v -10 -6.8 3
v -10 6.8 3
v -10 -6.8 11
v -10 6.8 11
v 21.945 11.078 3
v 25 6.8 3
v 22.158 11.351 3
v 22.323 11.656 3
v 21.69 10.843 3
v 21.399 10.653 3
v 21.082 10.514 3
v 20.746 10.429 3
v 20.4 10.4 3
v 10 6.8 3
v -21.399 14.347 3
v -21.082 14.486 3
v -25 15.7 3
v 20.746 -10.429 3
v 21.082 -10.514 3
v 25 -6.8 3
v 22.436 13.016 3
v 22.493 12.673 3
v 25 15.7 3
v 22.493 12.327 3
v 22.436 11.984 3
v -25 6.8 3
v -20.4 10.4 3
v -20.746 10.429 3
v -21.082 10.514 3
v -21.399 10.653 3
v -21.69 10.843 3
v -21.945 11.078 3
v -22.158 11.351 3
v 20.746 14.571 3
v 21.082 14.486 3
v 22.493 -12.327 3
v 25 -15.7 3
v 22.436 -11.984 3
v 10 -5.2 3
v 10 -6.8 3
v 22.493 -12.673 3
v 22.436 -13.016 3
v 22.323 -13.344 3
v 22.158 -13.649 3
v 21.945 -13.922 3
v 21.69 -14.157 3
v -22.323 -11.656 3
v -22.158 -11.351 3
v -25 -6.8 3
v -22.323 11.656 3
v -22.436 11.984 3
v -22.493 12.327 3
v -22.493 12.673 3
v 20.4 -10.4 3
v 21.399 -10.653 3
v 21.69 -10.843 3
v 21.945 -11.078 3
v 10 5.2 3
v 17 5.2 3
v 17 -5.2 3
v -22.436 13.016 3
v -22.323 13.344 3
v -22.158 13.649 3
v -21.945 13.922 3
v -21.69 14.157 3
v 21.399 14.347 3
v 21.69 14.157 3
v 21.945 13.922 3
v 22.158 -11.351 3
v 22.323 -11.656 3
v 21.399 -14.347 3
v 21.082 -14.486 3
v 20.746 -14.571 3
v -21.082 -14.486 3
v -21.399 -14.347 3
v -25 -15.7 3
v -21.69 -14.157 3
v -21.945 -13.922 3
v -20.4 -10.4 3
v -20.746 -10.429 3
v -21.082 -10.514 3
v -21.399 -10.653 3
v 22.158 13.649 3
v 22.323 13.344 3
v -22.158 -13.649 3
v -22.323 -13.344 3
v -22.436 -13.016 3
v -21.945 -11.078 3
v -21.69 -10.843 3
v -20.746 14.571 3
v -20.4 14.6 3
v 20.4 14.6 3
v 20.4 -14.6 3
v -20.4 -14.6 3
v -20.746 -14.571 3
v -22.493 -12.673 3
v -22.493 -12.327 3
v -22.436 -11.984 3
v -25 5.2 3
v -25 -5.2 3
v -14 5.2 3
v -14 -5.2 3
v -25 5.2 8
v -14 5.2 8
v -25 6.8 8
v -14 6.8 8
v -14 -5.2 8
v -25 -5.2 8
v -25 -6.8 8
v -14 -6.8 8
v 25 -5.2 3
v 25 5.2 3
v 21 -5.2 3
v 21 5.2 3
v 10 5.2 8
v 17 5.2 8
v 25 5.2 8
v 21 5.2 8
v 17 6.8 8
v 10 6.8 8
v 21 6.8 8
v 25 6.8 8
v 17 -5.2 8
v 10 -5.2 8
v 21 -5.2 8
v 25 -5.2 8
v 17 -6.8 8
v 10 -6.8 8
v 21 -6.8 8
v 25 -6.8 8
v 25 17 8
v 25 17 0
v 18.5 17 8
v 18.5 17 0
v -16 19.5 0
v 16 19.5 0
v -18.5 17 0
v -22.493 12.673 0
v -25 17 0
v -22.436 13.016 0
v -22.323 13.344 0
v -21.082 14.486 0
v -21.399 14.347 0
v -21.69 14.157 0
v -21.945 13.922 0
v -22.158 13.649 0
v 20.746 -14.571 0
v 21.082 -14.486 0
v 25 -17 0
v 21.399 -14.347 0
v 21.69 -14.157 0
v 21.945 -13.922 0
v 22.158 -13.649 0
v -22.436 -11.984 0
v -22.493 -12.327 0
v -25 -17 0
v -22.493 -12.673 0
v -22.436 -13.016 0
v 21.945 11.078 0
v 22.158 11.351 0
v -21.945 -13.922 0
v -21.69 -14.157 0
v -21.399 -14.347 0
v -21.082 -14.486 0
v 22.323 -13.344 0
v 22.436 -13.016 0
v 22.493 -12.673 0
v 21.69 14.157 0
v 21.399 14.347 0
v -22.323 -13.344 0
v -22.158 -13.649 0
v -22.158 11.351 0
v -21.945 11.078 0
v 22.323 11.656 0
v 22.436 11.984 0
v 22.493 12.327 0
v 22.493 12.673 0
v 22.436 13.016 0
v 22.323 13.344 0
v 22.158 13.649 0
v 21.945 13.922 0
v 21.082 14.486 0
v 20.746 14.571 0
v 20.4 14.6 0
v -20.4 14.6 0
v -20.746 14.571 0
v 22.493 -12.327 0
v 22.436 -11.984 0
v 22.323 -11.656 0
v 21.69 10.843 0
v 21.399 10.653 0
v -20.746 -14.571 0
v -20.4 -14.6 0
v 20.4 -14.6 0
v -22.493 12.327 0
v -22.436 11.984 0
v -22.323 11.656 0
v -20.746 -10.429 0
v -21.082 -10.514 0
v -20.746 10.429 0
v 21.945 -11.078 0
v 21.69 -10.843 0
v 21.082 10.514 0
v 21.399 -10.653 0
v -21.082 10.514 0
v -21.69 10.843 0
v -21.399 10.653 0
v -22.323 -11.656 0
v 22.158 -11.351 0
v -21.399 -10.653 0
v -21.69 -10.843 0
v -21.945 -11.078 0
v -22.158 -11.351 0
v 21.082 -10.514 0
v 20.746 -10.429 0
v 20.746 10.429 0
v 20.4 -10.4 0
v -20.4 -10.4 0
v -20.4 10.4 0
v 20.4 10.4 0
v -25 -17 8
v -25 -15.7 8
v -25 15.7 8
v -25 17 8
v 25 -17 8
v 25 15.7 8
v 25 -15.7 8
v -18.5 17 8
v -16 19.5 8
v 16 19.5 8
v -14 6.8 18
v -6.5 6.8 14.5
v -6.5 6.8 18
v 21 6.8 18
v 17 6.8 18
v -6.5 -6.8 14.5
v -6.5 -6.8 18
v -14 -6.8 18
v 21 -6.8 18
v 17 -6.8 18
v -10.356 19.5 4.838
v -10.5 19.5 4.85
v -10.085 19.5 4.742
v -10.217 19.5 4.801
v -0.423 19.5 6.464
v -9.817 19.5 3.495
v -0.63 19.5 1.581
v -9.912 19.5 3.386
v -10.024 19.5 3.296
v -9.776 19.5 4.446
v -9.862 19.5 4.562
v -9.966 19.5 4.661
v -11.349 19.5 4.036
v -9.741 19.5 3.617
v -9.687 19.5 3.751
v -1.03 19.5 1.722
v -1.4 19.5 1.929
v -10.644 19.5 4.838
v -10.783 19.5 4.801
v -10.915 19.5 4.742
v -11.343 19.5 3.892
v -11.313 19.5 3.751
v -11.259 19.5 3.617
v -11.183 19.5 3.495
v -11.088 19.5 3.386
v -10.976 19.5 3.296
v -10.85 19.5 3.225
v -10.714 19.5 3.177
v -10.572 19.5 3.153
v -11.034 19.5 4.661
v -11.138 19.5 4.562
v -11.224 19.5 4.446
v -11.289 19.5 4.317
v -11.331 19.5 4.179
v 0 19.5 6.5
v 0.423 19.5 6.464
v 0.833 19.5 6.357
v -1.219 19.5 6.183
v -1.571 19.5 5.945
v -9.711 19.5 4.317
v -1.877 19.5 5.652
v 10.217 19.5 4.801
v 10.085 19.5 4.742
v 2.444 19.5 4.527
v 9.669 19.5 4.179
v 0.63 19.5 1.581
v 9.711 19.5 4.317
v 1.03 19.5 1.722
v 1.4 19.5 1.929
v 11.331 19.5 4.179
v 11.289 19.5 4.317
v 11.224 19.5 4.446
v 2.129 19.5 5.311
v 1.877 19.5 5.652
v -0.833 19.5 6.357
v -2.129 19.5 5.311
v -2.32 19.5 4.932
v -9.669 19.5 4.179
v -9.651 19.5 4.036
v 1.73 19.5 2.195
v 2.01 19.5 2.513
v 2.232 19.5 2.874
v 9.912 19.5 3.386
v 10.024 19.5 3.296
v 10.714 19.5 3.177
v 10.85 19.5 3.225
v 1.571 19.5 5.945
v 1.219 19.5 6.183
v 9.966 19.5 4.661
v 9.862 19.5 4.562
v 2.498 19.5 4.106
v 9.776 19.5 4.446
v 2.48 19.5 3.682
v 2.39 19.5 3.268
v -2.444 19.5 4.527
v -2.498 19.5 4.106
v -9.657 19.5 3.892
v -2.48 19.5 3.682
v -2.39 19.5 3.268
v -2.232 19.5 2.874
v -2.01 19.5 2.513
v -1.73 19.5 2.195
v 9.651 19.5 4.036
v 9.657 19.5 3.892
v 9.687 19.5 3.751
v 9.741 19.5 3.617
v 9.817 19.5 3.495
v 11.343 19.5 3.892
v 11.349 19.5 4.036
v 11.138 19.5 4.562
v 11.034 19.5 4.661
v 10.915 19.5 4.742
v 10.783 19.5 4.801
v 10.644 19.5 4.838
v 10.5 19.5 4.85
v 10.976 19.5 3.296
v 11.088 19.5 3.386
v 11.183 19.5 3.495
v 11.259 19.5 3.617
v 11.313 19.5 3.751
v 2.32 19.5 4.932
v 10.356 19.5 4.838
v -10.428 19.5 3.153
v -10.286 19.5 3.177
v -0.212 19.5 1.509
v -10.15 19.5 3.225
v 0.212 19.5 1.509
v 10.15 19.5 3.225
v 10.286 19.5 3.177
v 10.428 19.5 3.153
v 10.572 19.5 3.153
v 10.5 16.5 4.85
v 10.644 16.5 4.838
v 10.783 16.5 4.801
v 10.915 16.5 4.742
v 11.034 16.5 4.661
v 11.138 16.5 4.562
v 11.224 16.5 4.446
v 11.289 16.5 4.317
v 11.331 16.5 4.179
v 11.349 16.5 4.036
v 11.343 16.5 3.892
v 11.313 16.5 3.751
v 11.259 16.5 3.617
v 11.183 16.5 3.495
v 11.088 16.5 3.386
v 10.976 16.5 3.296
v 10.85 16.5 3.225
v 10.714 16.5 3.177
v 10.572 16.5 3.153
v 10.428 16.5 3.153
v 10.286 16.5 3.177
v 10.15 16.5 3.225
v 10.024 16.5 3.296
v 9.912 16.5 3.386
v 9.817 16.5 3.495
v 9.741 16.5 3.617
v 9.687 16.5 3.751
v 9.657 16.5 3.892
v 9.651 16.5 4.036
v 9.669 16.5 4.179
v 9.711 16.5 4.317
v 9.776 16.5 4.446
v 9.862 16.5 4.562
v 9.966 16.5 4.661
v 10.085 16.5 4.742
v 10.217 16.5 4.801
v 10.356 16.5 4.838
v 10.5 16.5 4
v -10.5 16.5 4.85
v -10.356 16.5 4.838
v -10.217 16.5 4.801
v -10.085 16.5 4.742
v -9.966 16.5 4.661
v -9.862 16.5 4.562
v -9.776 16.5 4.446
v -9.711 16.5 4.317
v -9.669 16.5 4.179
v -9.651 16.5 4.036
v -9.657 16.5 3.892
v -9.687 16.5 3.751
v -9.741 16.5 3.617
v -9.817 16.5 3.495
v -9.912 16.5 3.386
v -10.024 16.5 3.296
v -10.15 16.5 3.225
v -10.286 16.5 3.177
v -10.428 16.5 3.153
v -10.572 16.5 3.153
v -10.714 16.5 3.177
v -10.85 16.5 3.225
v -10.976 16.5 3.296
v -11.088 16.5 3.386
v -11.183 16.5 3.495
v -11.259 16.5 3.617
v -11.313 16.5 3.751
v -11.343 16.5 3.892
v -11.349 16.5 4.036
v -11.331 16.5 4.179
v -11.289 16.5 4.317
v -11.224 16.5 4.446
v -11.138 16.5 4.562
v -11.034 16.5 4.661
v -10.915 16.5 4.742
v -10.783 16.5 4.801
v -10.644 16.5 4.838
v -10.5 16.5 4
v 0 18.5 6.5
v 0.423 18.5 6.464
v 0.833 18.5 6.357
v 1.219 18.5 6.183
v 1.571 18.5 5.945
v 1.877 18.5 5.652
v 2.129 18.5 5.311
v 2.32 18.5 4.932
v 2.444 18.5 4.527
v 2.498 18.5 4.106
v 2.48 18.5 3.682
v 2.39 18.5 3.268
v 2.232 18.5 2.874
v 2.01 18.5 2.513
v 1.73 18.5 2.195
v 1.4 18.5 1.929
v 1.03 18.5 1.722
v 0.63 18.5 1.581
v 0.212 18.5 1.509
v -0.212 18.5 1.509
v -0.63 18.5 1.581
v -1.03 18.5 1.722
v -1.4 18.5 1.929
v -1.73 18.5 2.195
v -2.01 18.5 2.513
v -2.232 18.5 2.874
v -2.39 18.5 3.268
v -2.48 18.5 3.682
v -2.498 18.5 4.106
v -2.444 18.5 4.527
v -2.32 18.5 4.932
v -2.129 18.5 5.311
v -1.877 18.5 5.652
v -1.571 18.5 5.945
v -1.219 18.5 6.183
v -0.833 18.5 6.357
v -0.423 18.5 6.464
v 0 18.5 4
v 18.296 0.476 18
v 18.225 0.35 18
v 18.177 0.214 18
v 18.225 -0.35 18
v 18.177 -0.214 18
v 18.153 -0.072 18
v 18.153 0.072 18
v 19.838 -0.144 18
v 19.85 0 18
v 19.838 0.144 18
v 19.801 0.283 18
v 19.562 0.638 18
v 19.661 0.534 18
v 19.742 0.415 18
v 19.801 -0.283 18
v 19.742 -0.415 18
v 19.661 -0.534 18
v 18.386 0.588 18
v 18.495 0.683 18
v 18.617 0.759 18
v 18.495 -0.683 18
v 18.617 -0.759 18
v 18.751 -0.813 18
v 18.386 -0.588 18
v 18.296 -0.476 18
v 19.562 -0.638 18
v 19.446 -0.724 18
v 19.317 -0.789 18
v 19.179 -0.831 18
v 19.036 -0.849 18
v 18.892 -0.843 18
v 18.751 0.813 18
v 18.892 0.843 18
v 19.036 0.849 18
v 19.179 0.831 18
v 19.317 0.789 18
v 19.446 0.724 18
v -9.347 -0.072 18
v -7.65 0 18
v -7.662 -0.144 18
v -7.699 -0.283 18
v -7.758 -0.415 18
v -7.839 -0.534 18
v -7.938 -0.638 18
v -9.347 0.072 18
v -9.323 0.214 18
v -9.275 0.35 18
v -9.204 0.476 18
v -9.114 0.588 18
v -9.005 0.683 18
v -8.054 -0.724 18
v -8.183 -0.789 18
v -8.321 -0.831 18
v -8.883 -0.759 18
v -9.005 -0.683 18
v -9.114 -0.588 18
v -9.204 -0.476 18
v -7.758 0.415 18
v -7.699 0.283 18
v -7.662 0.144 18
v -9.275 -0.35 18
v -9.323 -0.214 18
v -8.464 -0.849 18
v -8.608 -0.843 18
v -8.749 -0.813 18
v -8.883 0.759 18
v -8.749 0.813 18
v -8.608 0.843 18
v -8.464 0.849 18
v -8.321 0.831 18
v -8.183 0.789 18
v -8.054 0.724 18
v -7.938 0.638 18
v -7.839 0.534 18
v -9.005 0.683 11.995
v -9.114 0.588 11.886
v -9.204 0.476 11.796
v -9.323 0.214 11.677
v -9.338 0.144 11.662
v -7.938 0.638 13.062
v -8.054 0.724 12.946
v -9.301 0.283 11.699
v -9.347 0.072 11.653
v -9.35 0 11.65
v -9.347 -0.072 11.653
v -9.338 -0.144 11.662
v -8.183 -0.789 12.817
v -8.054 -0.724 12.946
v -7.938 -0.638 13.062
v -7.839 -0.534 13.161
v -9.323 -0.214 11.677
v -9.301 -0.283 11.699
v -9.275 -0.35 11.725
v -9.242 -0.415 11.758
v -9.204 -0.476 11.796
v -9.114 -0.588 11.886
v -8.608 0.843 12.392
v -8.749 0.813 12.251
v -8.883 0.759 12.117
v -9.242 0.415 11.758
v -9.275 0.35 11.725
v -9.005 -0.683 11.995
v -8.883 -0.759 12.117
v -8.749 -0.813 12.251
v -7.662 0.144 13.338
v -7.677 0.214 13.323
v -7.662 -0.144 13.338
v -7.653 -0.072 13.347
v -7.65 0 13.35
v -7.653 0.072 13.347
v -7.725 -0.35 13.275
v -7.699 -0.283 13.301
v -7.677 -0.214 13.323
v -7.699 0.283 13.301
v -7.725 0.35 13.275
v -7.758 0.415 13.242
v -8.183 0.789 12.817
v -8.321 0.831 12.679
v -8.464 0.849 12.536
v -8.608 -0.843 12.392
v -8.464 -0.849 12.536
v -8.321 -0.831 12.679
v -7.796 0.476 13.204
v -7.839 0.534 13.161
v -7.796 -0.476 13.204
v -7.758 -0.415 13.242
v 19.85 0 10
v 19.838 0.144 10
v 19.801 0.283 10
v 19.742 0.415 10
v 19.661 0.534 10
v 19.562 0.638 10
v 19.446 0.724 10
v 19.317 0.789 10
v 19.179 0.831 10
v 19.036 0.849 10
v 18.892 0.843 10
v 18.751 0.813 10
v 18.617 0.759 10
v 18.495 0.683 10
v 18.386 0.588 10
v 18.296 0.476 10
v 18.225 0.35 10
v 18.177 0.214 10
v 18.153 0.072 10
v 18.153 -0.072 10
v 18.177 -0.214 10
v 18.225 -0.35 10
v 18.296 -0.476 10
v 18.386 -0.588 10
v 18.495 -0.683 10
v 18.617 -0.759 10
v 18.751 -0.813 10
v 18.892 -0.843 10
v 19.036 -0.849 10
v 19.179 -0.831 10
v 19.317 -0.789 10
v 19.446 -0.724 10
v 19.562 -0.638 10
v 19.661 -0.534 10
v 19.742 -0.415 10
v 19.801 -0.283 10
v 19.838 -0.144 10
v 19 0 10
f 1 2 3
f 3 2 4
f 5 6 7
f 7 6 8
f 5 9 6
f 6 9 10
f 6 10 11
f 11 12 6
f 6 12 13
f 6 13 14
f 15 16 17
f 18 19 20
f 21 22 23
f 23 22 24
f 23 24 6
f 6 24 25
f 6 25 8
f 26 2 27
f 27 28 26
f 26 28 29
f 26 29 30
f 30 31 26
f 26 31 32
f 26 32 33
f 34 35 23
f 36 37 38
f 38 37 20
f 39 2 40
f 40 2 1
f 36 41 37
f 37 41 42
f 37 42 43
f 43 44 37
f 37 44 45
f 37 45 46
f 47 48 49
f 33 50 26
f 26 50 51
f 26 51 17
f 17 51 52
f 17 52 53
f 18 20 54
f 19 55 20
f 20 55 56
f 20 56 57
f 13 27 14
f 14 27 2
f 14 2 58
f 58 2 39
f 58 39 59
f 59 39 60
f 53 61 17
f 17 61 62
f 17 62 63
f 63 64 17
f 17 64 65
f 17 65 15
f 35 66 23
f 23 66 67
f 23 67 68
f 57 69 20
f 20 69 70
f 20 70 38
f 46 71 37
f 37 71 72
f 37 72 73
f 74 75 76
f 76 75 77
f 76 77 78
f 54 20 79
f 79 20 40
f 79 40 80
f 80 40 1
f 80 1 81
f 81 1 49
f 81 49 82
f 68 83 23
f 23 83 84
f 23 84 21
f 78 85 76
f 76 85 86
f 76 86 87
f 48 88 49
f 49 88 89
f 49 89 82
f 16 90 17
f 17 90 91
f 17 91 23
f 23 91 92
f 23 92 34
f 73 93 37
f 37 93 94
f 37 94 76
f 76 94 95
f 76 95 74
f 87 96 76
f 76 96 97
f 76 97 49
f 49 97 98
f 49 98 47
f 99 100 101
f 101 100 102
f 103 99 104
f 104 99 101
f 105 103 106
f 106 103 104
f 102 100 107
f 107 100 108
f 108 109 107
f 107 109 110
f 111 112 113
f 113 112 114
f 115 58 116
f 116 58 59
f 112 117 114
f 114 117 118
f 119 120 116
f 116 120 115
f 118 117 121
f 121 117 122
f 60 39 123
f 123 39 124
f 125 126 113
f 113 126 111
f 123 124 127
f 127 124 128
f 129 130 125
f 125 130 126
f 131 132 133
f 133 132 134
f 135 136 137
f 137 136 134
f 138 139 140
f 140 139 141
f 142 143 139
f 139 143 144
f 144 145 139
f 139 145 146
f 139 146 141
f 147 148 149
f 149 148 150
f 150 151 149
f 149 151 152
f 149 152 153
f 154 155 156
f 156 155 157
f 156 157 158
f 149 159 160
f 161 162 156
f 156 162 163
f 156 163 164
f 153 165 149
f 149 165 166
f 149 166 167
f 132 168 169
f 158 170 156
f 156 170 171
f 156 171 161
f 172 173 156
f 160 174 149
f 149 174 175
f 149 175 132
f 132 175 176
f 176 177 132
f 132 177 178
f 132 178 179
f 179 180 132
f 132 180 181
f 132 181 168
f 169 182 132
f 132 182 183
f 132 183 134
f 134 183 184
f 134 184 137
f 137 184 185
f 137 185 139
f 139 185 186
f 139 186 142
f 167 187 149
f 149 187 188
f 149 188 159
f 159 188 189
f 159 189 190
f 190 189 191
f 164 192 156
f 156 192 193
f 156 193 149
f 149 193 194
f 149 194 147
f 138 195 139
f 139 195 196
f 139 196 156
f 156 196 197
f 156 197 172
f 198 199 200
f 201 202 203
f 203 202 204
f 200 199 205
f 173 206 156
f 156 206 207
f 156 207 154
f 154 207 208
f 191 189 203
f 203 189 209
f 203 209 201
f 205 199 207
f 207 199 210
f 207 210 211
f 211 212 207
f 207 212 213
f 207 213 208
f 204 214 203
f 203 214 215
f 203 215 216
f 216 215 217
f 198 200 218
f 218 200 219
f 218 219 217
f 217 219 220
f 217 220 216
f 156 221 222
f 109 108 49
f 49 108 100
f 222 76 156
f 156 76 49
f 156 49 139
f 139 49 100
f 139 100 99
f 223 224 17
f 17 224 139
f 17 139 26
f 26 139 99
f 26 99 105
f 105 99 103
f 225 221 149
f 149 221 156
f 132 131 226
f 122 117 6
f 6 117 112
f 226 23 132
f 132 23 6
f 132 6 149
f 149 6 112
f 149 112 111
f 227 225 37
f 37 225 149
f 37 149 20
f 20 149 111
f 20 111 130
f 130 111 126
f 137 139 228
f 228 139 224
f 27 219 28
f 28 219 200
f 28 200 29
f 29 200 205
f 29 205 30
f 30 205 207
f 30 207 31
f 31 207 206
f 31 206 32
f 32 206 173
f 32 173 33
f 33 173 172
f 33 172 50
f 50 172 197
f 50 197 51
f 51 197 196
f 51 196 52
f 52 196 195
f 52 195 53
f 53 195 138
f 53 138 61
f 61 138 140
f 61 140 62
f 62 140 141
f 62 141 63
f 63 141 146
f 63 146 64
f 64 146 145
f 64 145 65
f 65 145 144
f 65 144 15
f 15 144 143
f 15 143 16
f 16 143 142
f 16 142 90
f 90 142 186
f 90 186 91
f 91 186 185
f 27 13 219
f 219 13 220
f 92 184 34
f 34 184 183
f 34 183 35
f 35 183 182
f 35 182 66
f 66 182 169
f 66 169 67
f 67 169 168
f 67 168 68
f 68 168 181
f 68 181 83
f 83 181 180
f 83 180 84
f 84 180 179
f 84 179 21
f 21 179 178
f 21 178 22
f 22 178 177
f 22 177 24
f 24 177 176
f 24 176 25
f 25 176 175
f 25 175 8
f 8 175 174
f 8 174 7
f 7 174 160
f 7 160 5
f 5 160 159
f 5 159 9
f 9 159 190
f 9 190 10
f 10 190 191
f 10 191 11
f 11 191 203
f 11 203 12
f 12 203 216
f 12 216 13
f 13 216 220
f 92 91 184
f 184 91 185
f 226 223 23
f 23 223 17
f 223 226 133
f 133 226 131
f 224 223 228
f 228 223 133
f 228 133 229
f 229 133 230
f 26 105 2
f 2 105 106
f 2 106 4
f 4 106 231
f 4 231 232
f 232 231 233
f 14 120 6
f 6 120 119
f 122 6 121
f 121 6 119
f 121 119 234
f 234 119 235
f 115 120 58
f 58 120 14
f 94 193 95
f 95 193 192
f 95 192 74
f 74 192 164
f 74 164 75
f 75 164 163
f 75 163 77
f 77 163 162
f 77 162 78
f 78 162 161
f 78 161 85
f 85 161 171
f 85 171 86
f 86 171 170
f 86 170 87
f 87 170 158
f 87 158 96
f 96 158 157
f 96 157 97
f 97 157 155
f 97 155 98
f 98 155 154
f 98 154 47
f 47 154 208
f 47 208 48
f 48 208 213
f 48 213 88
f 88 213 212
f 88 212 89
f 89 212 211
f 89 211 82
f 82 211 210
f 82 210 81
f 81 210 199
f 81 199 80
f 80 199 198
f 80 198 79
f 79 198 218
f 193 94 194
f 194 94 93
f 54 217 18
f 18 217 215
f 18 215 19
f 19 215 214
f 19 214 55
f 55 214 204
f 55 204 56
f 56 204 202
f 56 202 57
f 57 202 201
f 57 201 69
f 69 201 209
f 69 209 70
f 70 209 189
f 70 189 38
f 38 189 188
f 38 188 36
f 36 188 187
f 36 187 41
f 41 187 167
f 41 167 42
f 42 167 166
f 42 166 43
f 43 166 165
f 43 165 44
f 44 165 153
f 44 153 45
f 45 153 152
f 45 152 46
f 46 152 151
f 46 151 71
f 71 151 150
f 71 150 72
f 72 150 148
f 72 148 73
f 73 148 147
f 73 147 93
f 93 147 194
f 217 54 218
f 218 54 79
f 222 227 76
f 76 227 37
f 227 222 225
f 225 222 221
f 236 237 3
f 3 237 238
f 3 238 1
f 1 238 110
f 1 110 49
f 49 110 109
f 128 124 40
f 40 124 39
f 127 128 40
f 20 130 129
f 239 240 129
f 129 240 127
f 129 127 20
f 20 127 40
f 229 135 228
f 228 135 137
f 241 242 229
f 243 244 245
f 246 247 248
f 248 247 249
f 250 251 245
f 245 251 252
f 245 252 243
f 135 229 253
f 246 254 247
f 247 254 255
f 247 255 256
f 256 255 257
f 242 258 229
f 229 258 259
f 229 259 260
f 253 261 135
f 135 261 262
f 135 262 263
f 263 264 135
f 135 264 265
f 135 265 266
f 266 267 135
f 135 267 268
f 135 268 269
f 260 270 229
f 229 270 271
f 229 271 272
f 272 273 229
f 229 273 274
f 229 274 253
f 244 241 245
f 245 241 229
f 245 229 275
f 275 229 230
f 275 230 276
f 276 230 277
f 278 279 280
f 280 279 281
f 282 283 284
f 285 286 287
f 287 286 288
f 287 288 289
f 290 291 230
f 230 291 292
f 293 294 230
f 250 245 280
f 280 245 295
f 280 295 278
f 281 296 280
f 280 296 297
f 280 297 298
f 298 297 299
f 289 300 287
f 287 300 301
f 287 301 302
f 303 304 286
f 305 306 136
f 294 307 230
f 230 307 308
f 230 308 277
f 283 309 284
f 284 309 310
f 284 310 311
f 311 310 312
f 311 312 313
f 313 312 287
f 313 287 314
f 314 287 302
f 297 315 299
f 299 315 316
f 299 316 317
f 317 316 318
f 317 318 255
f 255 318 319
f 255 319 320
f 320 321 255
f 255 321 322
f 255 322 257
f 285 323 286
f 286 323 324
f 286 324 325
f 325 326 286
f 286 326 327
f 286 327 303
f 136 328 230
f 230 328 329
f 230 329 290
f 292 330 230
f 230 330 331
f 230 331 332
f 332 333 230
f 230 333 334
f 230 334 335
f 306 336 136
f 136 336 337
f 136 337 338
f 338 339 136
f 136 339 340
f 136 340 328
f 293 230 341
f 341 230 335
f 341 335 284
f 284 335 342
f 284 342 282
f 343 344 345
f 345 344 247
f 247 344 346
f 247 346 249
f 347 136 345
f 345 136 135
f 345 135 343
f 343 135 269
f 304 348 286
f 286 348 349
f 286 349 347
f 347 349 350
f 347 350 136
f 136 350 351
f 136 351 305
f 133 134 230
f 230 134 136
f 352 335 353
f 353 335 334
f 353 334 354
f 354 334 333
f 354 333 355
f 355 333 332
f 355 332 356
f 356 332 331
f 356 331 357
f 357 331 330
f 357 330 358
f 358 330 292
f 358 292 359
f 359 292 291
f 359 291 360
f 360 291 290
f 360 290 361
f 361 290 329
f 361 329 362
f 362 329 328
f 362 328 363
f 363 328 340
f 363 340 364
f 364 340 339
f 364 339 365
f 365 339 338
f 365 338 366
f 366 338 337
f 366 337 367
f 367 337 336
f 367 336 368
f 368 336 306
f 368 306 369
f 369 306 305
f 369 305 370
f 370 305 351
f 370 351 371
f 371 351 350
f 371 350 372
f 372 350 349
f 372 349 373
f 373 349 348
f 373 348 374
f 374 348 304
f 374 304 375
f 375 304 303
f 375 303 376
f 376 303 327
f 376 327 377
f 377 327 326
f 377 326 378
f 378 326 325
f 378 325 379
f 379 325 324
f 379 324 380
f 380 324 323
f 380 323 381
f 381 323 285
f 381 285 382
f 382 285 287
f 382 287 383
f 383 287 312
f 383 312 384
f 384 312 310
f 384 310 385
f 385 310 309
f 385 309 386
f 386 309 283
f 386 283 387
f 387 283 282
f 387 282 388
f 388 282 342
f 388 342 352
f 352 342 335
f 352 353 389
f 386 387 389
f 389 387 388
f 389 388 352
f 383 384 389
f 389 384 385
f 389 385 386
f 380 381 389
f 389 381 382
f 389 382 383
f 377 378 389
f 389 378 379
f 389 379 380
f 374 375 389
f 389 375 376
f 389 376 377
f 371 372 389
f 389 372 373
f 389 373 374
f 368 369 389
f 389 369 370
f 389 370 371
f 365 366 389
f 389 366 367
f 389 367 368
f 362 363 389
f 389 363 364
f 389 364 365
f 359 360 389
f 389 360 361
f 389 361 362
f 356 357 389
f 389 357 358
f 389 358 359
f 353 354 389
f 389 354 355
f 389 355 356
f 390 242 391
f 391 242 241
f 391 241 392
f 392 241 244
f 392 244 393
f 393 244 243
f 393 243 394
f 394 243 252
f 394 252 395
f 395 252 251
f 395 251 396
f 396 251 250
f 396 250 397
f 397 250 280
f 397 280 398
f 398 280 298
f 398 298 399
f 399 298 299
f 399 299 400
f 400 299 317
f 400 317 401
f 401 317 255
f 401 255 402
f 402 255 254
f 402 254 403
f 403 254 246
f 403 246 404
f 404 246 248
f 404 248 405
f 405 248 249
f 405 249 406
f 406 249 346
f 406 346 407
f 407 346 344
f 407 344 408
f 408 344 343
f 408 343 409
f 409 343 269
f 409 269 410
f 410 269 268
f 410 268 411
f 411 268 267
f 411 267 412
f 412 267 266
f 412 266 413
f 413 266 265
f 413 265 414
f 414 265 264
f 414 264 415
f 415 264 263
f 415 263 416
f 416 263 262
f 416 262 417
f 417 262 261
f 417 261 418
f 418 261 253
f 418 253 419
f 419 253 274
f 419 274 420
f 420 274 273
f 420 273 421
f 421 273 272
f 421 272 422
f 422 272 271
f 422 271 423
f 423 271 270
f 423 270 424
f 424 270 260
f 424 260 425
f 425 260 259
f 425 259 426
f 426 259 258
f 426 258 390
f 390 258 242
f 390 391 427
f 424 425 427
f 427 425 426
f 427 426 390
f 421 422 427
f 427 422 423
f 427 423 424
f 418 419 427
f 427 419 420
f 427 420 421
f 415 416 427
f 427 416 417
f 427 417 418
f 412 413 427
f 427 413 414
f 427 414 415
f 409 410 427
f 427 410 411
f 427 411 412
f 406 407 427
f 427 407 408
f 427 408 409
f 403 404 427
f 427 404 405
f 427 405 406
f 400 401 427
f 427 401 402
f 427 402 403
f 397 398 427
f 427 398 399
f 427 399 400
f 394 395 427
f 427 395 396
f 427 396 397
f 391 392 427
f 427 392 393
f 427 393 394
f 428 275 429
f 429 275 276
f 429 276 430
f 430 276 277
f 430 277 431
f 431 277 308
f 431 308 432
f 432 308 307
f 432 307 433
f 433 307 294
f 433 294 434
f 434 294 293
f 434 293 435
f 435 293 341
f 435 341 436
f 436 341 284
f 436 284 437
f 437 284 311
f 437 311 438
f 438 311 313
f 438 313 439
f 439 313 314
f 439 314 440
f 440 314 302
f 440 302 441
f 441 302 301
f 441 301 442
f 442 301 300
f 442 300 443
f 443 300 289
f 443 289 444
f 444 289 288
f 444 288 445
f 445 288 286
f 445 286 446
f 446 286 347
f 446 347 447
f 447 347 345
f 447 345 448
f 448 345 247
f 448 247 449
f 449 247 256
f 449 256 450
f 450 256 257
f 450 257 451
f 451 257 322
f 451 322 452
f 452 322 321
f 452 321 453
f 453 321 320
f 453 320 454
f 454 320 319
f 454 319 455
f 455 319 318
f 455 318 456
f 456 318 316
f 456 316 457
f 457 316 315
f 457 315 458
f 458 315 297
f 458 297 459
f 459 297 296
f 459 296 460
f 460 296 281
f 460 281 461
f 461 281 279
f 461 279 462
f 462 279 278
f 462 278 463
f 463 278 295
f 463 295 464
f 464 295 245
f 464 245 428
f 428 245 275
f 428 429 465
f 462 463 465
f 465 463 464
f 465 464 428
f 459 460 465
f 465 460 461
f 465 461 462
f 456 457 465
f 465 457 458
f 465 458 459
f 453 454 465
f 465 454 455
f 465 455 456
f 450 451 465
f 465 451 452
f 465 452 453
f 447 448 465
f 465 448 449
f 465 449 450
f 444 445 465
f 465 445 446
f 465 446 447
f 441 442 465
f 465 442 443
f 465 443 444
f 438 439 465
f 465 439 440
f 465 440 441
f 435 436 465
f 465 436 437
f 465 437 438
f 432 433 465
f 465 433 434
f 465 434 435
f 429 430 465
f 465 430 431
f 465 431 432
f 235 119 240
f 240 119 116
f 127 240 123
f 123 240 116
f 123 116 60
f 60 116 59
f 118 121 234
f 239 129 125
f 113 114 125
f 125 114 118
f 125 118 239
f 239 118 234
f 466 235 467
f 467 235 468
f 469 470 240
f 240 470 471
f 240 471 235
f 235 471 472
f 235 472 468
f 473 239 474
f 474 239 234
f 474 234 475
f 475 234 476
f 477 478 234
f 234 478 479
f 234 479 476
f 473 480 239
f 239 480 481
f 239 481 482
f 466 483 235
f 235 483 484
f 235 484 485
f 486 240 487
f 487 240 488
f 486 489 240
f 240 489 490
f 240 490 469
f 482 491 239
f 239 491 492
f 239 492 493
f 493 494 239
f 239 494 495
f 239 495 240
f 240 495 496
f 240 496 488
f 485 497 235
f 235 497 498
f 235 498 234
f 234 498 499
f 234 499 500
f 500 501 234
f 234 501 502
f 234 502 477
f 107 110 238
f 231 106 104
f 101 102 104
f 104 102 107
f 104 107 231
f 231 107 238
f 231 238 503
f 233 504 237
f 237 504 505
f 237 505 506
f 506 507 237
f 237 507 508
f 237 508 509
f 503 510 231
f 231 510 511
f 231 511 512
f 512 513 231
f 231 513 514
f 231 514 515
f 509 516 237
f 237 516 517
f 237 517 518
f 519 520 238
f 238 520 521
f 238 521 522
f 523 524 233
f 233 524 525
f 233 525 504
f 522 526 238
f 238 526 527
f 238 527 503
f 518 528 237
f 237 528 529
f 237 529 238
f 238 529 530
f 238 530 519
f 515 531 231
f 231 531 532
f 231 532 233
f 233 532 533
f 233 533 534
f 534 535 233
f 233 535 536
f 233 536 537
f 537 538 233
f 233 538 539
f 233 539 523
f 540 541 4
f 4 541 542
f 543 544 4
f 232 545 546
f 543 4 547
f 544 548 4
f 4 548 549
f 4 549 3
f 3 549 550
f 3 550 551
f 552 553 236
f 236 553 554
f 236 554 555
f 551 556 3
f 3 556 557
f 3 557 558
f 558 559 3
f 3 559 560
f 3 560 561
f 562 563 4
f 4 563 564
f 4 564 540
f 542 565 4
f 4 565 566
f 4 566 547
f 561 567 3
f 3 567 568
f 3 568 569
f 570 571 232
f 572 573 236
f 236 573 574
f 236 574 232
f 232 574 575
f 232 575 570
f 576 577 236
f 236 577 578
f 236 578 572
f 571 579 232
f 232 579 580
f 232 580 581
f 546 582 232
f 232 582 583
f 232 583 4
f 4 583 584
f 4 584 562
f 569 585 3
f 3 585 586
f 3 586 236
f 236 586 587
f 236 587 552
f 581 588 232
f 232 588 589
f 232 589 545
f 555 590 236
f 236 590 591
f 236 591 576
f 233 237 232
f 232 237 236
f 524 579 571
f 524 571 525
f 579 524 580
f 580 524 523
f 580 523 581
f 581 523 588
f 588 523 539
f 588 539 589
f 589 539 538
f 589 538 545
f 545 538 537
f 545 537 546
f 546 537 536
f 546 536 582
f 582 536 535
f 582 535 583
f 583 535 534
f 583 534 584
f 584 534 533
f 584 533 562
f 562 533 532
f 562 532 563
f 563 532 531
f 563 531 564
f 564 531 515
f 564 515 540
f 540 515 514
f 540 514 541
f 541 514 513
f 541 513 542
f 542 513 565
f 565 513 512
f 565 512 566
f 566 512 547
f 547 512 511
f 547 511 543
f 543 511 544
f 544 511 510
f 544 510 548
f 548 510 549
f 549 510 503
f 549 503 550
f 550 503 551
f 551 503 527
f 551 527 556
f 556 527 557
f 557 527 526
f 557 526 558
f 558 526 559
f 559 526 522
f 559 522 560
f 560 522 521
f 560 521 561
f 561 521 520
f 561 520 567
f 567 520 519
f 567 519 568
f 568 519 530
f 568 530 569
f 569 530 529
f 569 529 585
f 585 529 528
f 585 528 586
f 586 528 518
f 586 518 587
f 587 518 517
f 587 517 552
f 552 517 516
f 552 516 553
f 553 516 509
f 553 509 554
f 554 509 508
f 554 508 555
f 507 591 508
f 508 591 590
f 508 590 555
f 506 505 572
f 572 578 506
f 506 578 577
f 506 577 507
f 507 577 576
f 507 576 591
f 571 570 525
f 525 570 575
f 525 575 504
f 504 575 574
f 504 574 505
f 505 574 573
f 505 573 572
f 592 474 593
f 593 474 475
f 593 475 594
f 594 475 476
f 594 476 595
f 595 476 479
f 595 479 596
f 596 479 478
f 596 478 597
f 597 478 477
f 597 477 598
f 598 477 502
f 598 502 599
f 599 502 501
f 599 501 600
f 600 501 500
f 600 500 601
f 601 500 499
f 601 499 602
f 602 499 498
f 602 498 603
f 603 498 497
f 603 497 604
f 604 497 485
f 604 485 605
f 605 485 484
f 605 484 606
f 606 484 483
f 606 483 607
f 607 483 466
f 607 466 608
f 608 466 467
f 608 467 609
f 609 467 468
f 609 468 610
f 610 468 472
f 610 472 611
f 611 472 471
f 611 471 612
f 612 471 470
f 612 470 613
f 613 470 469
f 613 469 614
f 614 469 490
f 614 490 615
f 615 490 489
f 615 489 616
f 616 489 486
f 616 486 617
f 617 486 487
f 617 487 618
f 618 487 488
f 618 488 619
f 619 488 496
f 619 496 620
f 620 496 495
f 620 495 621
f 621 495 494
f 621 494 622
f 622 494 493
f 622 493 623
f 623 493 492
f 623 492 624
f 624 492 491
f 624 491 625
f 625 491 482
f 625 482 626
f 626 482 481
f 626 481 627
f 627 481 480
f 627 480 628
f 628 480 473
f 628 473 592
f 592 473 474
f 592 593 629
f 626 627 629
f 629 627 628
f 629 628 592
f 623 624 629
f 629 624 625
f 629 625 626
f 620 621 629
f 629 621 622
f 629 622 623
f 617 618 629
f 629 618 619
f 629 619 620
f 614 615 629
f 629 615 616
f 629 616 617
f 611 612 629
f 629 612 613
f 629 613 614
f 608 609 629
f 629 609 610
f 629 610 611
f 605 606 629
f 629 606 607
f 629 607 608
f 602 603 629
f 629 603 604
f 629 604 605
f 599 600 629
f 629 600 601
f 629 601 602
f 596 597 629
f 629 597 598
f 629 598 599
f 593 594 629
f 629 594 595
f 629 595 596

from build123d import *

# Parameters (mm, degrees)
SZKIC1_W                    = 50
SZKIC1_H                    = 34
DODANIE_WYCI_GNI_CIE1_DEPTH = 3
WYTNIJ_WYCI_GNI_CIE1_DEPTH  = 31.380915062
SZKIC2_W                    = 50
SZKIC2_H                    = 1.3
SZKIC2_W_2                  = 15
SZKIC2_H_2                  = 1.6
DODANIE_WYCI_GNI_CIE2_DEPTH = 5
DODANIE_WYCI_GNI_CIE5_DEPTH = 8
SZKIC9_R                    = 0.85
WYTNIJ_WYCI_GNI_CIE3_DEPTH  = 3
WYTNIJ_WYCI_GNI_CIE4_DEPTH  = 1
SZKIC5_W                    = 4
SZKIC5_H                    = 13.6
DODANIE_WYCI_GNI_CIE3_DEPTH = 15
DODANIE_WYCI_GNI_CIE4_START = -6.8
DODANIE_WYCI_GNI_CIE4_DEPTH = 13.6
SZKIC7_R                    = 0.85
WYTNIJ_WYCI_GNI_CIE2_DEPTH  = 8


with BuildPart() as part:
    # Szkic1 → Dodanie-wyciągnięcie1 (new body)
    with BuildSketch(Plane.XY):
        Rectangle(SZKIC1_W, SZKIC1_H)
    extrude(amount=DODANIE_WYCI_GNI_CIE1_DEPTH)

    # Szkic3 → Wytnij-wyciągnięcie1 (cut, through all)
    with BuildSketch(Plane.XY):
        with BuildLine():
            Line((-20.4, 14.6), (20.4, 14.6))
            ThreePointArc((20.4, 14.6), (22.5, 12.5), (20.4, 10.4))
            Line((20.4, 10.4), (-20.4, 10.4))
            ThreePointArc((-20.4, 10.4), (-22.5, 12.5), (-20.4, 14.6))
        make_face()
    wytnij_wyci_gni_cie1 = extrude(amount=WYTNIJ_WYCI_GNI_CIE1_DEPTH, mode=Mode.SUBTRACT)

    # Szkic2 → Dodanie-wyciągnięcie2 (add)
    with BuildSketch(Plane.XY.offset(3)):
        with Locations((0, 16.35)):
            Rectangle(SZKIC2_W, SZKIC2_H)
        with Locations((-17.5, 6)):
            Rectangle(SZKIC2_W_2, SZKIC2_H_2)
        with Locations((17.5, 6)):
            Rectangle(SZKIC2_W_2, SZKIC2_H_2)
    dodanie_wyci_gni_cie2 = extrude(amount=DODANIE_WYCI_GNI_CIE2_DEPTH)

    # Lustro1: Wytnij-wyciągnięcie1, Dodanie-wyciągnięcie2 across plane
    add(wytnij_wyci_gni_cie1.mirror(Plane.ZX), mode=Mode.SUBTRACT)
    add(dodanie_wyci_gni_cie2.mirror(Plane.ZX))

    # Szkic8 → Dodanie-wyciągnięcie5 (add)
    with BuildSketch(Plane(origin=(0, 0, 0), x_dir=(-1, 0, 0), z_dir=(0, 0, -1))):
        Polygon((-18.5, 17), (-16, 19.5), (16, 19.5), (18.5, 17), align=None)
    extrude(amount=-DODANIE_WYCI_GNI_CIE5_DEPTH)

    # Szkic9 → Wytnij-wyciągnięcie3 (cut)
    with BuildSketch(Plane(origin=(0, 19.5, 0), x_dir=(1, 0, 0), z_dir=(0, 1, 0))):
        with Locations(Location((-10.5, -4, 0), (0, 0, 270))):
            Circle(SZKIC9_R)
        with Locations(Location((10.5, -4, 0), (0, 0, 270))):
            Circle(SZKIC9_R)
    extrude(amount=-WYTNIJ_WYCI_GNI_CIE3_DEPTH, mode=Mode.SUBTRACT)

    # Szkic9<3> → Wytnij-wyciągnięcie4 (cut)
    with BuildSketch(Plane(origin=(0, 19.5, 0), x_dir=(1, 0, 0), z_dir=(0, 1, 0))):
        with BuildLine():
            ThreePointArc((2.5, -4), (1.767766953, -2.232233047), (0, -1.5))
            Line((0, -1.5), (0, -6.5))
            ThreePointArc((0, -6.5), (1.767766953, -5.767766953), (2.5, -4))
        make_face()
        with BuildLine():
            Line((0, -6.5), (0, -1.5))
            ThreePointArc((0, -1.5), (-2.5, -4), (0, -6.5))
        make_face()
    extrude(amount=-WYTNIJ_WYCI_GNI_CIE4_DEPTH, mode=Mode.SUBTRACT)

    # Szkic5 → Dodanie-wyciągnięcie3 (add)
    with BuildSketch(Plane.XY.offset(3)):
        with Locations((19, 0)):
            Rectangle(SZKIC5_W, SZKIC5_H)
        with Locations((-12, 0)):
            Rectangle(SZKIC5_W, SZKIC5_H)
    extrude(amount=DODANIE_WYCI_GNI_CIE3_DEPTH)

    # Szkic6 → Dodanie-wyciągnięcie4 (add)
    with BuildSketch(Plane(origin=(0, 0, 0), x_dir=(1, 0, 0), z_dir=(0, 1, 0)).offset(DODANIE_WYCI_GNI_CIE4_START)):
        Polygon((-10, -18), (-6.5, -18), (-6.5, -14.5), (-10, -11), align=None)
    extrude(amount=DODANIE_WYCI_GNI_CIE4_DEPTH)

    # Szkic7 → Wytnij-wyciągnięcie2 (cut)
    with BuildSketch(Plane.XY.offset(18)):
        with Locations((-8.5, 0)):
            Circle(SZKIC7_R)
        with Locations((19, 0)):
            Circle(SZKIC7_R)
    extrude(amount=-WYTNIJ_WYCI_GNI_CIE2_DEPTH, mode=Mode.SUBTRACT)


solid = part.part
